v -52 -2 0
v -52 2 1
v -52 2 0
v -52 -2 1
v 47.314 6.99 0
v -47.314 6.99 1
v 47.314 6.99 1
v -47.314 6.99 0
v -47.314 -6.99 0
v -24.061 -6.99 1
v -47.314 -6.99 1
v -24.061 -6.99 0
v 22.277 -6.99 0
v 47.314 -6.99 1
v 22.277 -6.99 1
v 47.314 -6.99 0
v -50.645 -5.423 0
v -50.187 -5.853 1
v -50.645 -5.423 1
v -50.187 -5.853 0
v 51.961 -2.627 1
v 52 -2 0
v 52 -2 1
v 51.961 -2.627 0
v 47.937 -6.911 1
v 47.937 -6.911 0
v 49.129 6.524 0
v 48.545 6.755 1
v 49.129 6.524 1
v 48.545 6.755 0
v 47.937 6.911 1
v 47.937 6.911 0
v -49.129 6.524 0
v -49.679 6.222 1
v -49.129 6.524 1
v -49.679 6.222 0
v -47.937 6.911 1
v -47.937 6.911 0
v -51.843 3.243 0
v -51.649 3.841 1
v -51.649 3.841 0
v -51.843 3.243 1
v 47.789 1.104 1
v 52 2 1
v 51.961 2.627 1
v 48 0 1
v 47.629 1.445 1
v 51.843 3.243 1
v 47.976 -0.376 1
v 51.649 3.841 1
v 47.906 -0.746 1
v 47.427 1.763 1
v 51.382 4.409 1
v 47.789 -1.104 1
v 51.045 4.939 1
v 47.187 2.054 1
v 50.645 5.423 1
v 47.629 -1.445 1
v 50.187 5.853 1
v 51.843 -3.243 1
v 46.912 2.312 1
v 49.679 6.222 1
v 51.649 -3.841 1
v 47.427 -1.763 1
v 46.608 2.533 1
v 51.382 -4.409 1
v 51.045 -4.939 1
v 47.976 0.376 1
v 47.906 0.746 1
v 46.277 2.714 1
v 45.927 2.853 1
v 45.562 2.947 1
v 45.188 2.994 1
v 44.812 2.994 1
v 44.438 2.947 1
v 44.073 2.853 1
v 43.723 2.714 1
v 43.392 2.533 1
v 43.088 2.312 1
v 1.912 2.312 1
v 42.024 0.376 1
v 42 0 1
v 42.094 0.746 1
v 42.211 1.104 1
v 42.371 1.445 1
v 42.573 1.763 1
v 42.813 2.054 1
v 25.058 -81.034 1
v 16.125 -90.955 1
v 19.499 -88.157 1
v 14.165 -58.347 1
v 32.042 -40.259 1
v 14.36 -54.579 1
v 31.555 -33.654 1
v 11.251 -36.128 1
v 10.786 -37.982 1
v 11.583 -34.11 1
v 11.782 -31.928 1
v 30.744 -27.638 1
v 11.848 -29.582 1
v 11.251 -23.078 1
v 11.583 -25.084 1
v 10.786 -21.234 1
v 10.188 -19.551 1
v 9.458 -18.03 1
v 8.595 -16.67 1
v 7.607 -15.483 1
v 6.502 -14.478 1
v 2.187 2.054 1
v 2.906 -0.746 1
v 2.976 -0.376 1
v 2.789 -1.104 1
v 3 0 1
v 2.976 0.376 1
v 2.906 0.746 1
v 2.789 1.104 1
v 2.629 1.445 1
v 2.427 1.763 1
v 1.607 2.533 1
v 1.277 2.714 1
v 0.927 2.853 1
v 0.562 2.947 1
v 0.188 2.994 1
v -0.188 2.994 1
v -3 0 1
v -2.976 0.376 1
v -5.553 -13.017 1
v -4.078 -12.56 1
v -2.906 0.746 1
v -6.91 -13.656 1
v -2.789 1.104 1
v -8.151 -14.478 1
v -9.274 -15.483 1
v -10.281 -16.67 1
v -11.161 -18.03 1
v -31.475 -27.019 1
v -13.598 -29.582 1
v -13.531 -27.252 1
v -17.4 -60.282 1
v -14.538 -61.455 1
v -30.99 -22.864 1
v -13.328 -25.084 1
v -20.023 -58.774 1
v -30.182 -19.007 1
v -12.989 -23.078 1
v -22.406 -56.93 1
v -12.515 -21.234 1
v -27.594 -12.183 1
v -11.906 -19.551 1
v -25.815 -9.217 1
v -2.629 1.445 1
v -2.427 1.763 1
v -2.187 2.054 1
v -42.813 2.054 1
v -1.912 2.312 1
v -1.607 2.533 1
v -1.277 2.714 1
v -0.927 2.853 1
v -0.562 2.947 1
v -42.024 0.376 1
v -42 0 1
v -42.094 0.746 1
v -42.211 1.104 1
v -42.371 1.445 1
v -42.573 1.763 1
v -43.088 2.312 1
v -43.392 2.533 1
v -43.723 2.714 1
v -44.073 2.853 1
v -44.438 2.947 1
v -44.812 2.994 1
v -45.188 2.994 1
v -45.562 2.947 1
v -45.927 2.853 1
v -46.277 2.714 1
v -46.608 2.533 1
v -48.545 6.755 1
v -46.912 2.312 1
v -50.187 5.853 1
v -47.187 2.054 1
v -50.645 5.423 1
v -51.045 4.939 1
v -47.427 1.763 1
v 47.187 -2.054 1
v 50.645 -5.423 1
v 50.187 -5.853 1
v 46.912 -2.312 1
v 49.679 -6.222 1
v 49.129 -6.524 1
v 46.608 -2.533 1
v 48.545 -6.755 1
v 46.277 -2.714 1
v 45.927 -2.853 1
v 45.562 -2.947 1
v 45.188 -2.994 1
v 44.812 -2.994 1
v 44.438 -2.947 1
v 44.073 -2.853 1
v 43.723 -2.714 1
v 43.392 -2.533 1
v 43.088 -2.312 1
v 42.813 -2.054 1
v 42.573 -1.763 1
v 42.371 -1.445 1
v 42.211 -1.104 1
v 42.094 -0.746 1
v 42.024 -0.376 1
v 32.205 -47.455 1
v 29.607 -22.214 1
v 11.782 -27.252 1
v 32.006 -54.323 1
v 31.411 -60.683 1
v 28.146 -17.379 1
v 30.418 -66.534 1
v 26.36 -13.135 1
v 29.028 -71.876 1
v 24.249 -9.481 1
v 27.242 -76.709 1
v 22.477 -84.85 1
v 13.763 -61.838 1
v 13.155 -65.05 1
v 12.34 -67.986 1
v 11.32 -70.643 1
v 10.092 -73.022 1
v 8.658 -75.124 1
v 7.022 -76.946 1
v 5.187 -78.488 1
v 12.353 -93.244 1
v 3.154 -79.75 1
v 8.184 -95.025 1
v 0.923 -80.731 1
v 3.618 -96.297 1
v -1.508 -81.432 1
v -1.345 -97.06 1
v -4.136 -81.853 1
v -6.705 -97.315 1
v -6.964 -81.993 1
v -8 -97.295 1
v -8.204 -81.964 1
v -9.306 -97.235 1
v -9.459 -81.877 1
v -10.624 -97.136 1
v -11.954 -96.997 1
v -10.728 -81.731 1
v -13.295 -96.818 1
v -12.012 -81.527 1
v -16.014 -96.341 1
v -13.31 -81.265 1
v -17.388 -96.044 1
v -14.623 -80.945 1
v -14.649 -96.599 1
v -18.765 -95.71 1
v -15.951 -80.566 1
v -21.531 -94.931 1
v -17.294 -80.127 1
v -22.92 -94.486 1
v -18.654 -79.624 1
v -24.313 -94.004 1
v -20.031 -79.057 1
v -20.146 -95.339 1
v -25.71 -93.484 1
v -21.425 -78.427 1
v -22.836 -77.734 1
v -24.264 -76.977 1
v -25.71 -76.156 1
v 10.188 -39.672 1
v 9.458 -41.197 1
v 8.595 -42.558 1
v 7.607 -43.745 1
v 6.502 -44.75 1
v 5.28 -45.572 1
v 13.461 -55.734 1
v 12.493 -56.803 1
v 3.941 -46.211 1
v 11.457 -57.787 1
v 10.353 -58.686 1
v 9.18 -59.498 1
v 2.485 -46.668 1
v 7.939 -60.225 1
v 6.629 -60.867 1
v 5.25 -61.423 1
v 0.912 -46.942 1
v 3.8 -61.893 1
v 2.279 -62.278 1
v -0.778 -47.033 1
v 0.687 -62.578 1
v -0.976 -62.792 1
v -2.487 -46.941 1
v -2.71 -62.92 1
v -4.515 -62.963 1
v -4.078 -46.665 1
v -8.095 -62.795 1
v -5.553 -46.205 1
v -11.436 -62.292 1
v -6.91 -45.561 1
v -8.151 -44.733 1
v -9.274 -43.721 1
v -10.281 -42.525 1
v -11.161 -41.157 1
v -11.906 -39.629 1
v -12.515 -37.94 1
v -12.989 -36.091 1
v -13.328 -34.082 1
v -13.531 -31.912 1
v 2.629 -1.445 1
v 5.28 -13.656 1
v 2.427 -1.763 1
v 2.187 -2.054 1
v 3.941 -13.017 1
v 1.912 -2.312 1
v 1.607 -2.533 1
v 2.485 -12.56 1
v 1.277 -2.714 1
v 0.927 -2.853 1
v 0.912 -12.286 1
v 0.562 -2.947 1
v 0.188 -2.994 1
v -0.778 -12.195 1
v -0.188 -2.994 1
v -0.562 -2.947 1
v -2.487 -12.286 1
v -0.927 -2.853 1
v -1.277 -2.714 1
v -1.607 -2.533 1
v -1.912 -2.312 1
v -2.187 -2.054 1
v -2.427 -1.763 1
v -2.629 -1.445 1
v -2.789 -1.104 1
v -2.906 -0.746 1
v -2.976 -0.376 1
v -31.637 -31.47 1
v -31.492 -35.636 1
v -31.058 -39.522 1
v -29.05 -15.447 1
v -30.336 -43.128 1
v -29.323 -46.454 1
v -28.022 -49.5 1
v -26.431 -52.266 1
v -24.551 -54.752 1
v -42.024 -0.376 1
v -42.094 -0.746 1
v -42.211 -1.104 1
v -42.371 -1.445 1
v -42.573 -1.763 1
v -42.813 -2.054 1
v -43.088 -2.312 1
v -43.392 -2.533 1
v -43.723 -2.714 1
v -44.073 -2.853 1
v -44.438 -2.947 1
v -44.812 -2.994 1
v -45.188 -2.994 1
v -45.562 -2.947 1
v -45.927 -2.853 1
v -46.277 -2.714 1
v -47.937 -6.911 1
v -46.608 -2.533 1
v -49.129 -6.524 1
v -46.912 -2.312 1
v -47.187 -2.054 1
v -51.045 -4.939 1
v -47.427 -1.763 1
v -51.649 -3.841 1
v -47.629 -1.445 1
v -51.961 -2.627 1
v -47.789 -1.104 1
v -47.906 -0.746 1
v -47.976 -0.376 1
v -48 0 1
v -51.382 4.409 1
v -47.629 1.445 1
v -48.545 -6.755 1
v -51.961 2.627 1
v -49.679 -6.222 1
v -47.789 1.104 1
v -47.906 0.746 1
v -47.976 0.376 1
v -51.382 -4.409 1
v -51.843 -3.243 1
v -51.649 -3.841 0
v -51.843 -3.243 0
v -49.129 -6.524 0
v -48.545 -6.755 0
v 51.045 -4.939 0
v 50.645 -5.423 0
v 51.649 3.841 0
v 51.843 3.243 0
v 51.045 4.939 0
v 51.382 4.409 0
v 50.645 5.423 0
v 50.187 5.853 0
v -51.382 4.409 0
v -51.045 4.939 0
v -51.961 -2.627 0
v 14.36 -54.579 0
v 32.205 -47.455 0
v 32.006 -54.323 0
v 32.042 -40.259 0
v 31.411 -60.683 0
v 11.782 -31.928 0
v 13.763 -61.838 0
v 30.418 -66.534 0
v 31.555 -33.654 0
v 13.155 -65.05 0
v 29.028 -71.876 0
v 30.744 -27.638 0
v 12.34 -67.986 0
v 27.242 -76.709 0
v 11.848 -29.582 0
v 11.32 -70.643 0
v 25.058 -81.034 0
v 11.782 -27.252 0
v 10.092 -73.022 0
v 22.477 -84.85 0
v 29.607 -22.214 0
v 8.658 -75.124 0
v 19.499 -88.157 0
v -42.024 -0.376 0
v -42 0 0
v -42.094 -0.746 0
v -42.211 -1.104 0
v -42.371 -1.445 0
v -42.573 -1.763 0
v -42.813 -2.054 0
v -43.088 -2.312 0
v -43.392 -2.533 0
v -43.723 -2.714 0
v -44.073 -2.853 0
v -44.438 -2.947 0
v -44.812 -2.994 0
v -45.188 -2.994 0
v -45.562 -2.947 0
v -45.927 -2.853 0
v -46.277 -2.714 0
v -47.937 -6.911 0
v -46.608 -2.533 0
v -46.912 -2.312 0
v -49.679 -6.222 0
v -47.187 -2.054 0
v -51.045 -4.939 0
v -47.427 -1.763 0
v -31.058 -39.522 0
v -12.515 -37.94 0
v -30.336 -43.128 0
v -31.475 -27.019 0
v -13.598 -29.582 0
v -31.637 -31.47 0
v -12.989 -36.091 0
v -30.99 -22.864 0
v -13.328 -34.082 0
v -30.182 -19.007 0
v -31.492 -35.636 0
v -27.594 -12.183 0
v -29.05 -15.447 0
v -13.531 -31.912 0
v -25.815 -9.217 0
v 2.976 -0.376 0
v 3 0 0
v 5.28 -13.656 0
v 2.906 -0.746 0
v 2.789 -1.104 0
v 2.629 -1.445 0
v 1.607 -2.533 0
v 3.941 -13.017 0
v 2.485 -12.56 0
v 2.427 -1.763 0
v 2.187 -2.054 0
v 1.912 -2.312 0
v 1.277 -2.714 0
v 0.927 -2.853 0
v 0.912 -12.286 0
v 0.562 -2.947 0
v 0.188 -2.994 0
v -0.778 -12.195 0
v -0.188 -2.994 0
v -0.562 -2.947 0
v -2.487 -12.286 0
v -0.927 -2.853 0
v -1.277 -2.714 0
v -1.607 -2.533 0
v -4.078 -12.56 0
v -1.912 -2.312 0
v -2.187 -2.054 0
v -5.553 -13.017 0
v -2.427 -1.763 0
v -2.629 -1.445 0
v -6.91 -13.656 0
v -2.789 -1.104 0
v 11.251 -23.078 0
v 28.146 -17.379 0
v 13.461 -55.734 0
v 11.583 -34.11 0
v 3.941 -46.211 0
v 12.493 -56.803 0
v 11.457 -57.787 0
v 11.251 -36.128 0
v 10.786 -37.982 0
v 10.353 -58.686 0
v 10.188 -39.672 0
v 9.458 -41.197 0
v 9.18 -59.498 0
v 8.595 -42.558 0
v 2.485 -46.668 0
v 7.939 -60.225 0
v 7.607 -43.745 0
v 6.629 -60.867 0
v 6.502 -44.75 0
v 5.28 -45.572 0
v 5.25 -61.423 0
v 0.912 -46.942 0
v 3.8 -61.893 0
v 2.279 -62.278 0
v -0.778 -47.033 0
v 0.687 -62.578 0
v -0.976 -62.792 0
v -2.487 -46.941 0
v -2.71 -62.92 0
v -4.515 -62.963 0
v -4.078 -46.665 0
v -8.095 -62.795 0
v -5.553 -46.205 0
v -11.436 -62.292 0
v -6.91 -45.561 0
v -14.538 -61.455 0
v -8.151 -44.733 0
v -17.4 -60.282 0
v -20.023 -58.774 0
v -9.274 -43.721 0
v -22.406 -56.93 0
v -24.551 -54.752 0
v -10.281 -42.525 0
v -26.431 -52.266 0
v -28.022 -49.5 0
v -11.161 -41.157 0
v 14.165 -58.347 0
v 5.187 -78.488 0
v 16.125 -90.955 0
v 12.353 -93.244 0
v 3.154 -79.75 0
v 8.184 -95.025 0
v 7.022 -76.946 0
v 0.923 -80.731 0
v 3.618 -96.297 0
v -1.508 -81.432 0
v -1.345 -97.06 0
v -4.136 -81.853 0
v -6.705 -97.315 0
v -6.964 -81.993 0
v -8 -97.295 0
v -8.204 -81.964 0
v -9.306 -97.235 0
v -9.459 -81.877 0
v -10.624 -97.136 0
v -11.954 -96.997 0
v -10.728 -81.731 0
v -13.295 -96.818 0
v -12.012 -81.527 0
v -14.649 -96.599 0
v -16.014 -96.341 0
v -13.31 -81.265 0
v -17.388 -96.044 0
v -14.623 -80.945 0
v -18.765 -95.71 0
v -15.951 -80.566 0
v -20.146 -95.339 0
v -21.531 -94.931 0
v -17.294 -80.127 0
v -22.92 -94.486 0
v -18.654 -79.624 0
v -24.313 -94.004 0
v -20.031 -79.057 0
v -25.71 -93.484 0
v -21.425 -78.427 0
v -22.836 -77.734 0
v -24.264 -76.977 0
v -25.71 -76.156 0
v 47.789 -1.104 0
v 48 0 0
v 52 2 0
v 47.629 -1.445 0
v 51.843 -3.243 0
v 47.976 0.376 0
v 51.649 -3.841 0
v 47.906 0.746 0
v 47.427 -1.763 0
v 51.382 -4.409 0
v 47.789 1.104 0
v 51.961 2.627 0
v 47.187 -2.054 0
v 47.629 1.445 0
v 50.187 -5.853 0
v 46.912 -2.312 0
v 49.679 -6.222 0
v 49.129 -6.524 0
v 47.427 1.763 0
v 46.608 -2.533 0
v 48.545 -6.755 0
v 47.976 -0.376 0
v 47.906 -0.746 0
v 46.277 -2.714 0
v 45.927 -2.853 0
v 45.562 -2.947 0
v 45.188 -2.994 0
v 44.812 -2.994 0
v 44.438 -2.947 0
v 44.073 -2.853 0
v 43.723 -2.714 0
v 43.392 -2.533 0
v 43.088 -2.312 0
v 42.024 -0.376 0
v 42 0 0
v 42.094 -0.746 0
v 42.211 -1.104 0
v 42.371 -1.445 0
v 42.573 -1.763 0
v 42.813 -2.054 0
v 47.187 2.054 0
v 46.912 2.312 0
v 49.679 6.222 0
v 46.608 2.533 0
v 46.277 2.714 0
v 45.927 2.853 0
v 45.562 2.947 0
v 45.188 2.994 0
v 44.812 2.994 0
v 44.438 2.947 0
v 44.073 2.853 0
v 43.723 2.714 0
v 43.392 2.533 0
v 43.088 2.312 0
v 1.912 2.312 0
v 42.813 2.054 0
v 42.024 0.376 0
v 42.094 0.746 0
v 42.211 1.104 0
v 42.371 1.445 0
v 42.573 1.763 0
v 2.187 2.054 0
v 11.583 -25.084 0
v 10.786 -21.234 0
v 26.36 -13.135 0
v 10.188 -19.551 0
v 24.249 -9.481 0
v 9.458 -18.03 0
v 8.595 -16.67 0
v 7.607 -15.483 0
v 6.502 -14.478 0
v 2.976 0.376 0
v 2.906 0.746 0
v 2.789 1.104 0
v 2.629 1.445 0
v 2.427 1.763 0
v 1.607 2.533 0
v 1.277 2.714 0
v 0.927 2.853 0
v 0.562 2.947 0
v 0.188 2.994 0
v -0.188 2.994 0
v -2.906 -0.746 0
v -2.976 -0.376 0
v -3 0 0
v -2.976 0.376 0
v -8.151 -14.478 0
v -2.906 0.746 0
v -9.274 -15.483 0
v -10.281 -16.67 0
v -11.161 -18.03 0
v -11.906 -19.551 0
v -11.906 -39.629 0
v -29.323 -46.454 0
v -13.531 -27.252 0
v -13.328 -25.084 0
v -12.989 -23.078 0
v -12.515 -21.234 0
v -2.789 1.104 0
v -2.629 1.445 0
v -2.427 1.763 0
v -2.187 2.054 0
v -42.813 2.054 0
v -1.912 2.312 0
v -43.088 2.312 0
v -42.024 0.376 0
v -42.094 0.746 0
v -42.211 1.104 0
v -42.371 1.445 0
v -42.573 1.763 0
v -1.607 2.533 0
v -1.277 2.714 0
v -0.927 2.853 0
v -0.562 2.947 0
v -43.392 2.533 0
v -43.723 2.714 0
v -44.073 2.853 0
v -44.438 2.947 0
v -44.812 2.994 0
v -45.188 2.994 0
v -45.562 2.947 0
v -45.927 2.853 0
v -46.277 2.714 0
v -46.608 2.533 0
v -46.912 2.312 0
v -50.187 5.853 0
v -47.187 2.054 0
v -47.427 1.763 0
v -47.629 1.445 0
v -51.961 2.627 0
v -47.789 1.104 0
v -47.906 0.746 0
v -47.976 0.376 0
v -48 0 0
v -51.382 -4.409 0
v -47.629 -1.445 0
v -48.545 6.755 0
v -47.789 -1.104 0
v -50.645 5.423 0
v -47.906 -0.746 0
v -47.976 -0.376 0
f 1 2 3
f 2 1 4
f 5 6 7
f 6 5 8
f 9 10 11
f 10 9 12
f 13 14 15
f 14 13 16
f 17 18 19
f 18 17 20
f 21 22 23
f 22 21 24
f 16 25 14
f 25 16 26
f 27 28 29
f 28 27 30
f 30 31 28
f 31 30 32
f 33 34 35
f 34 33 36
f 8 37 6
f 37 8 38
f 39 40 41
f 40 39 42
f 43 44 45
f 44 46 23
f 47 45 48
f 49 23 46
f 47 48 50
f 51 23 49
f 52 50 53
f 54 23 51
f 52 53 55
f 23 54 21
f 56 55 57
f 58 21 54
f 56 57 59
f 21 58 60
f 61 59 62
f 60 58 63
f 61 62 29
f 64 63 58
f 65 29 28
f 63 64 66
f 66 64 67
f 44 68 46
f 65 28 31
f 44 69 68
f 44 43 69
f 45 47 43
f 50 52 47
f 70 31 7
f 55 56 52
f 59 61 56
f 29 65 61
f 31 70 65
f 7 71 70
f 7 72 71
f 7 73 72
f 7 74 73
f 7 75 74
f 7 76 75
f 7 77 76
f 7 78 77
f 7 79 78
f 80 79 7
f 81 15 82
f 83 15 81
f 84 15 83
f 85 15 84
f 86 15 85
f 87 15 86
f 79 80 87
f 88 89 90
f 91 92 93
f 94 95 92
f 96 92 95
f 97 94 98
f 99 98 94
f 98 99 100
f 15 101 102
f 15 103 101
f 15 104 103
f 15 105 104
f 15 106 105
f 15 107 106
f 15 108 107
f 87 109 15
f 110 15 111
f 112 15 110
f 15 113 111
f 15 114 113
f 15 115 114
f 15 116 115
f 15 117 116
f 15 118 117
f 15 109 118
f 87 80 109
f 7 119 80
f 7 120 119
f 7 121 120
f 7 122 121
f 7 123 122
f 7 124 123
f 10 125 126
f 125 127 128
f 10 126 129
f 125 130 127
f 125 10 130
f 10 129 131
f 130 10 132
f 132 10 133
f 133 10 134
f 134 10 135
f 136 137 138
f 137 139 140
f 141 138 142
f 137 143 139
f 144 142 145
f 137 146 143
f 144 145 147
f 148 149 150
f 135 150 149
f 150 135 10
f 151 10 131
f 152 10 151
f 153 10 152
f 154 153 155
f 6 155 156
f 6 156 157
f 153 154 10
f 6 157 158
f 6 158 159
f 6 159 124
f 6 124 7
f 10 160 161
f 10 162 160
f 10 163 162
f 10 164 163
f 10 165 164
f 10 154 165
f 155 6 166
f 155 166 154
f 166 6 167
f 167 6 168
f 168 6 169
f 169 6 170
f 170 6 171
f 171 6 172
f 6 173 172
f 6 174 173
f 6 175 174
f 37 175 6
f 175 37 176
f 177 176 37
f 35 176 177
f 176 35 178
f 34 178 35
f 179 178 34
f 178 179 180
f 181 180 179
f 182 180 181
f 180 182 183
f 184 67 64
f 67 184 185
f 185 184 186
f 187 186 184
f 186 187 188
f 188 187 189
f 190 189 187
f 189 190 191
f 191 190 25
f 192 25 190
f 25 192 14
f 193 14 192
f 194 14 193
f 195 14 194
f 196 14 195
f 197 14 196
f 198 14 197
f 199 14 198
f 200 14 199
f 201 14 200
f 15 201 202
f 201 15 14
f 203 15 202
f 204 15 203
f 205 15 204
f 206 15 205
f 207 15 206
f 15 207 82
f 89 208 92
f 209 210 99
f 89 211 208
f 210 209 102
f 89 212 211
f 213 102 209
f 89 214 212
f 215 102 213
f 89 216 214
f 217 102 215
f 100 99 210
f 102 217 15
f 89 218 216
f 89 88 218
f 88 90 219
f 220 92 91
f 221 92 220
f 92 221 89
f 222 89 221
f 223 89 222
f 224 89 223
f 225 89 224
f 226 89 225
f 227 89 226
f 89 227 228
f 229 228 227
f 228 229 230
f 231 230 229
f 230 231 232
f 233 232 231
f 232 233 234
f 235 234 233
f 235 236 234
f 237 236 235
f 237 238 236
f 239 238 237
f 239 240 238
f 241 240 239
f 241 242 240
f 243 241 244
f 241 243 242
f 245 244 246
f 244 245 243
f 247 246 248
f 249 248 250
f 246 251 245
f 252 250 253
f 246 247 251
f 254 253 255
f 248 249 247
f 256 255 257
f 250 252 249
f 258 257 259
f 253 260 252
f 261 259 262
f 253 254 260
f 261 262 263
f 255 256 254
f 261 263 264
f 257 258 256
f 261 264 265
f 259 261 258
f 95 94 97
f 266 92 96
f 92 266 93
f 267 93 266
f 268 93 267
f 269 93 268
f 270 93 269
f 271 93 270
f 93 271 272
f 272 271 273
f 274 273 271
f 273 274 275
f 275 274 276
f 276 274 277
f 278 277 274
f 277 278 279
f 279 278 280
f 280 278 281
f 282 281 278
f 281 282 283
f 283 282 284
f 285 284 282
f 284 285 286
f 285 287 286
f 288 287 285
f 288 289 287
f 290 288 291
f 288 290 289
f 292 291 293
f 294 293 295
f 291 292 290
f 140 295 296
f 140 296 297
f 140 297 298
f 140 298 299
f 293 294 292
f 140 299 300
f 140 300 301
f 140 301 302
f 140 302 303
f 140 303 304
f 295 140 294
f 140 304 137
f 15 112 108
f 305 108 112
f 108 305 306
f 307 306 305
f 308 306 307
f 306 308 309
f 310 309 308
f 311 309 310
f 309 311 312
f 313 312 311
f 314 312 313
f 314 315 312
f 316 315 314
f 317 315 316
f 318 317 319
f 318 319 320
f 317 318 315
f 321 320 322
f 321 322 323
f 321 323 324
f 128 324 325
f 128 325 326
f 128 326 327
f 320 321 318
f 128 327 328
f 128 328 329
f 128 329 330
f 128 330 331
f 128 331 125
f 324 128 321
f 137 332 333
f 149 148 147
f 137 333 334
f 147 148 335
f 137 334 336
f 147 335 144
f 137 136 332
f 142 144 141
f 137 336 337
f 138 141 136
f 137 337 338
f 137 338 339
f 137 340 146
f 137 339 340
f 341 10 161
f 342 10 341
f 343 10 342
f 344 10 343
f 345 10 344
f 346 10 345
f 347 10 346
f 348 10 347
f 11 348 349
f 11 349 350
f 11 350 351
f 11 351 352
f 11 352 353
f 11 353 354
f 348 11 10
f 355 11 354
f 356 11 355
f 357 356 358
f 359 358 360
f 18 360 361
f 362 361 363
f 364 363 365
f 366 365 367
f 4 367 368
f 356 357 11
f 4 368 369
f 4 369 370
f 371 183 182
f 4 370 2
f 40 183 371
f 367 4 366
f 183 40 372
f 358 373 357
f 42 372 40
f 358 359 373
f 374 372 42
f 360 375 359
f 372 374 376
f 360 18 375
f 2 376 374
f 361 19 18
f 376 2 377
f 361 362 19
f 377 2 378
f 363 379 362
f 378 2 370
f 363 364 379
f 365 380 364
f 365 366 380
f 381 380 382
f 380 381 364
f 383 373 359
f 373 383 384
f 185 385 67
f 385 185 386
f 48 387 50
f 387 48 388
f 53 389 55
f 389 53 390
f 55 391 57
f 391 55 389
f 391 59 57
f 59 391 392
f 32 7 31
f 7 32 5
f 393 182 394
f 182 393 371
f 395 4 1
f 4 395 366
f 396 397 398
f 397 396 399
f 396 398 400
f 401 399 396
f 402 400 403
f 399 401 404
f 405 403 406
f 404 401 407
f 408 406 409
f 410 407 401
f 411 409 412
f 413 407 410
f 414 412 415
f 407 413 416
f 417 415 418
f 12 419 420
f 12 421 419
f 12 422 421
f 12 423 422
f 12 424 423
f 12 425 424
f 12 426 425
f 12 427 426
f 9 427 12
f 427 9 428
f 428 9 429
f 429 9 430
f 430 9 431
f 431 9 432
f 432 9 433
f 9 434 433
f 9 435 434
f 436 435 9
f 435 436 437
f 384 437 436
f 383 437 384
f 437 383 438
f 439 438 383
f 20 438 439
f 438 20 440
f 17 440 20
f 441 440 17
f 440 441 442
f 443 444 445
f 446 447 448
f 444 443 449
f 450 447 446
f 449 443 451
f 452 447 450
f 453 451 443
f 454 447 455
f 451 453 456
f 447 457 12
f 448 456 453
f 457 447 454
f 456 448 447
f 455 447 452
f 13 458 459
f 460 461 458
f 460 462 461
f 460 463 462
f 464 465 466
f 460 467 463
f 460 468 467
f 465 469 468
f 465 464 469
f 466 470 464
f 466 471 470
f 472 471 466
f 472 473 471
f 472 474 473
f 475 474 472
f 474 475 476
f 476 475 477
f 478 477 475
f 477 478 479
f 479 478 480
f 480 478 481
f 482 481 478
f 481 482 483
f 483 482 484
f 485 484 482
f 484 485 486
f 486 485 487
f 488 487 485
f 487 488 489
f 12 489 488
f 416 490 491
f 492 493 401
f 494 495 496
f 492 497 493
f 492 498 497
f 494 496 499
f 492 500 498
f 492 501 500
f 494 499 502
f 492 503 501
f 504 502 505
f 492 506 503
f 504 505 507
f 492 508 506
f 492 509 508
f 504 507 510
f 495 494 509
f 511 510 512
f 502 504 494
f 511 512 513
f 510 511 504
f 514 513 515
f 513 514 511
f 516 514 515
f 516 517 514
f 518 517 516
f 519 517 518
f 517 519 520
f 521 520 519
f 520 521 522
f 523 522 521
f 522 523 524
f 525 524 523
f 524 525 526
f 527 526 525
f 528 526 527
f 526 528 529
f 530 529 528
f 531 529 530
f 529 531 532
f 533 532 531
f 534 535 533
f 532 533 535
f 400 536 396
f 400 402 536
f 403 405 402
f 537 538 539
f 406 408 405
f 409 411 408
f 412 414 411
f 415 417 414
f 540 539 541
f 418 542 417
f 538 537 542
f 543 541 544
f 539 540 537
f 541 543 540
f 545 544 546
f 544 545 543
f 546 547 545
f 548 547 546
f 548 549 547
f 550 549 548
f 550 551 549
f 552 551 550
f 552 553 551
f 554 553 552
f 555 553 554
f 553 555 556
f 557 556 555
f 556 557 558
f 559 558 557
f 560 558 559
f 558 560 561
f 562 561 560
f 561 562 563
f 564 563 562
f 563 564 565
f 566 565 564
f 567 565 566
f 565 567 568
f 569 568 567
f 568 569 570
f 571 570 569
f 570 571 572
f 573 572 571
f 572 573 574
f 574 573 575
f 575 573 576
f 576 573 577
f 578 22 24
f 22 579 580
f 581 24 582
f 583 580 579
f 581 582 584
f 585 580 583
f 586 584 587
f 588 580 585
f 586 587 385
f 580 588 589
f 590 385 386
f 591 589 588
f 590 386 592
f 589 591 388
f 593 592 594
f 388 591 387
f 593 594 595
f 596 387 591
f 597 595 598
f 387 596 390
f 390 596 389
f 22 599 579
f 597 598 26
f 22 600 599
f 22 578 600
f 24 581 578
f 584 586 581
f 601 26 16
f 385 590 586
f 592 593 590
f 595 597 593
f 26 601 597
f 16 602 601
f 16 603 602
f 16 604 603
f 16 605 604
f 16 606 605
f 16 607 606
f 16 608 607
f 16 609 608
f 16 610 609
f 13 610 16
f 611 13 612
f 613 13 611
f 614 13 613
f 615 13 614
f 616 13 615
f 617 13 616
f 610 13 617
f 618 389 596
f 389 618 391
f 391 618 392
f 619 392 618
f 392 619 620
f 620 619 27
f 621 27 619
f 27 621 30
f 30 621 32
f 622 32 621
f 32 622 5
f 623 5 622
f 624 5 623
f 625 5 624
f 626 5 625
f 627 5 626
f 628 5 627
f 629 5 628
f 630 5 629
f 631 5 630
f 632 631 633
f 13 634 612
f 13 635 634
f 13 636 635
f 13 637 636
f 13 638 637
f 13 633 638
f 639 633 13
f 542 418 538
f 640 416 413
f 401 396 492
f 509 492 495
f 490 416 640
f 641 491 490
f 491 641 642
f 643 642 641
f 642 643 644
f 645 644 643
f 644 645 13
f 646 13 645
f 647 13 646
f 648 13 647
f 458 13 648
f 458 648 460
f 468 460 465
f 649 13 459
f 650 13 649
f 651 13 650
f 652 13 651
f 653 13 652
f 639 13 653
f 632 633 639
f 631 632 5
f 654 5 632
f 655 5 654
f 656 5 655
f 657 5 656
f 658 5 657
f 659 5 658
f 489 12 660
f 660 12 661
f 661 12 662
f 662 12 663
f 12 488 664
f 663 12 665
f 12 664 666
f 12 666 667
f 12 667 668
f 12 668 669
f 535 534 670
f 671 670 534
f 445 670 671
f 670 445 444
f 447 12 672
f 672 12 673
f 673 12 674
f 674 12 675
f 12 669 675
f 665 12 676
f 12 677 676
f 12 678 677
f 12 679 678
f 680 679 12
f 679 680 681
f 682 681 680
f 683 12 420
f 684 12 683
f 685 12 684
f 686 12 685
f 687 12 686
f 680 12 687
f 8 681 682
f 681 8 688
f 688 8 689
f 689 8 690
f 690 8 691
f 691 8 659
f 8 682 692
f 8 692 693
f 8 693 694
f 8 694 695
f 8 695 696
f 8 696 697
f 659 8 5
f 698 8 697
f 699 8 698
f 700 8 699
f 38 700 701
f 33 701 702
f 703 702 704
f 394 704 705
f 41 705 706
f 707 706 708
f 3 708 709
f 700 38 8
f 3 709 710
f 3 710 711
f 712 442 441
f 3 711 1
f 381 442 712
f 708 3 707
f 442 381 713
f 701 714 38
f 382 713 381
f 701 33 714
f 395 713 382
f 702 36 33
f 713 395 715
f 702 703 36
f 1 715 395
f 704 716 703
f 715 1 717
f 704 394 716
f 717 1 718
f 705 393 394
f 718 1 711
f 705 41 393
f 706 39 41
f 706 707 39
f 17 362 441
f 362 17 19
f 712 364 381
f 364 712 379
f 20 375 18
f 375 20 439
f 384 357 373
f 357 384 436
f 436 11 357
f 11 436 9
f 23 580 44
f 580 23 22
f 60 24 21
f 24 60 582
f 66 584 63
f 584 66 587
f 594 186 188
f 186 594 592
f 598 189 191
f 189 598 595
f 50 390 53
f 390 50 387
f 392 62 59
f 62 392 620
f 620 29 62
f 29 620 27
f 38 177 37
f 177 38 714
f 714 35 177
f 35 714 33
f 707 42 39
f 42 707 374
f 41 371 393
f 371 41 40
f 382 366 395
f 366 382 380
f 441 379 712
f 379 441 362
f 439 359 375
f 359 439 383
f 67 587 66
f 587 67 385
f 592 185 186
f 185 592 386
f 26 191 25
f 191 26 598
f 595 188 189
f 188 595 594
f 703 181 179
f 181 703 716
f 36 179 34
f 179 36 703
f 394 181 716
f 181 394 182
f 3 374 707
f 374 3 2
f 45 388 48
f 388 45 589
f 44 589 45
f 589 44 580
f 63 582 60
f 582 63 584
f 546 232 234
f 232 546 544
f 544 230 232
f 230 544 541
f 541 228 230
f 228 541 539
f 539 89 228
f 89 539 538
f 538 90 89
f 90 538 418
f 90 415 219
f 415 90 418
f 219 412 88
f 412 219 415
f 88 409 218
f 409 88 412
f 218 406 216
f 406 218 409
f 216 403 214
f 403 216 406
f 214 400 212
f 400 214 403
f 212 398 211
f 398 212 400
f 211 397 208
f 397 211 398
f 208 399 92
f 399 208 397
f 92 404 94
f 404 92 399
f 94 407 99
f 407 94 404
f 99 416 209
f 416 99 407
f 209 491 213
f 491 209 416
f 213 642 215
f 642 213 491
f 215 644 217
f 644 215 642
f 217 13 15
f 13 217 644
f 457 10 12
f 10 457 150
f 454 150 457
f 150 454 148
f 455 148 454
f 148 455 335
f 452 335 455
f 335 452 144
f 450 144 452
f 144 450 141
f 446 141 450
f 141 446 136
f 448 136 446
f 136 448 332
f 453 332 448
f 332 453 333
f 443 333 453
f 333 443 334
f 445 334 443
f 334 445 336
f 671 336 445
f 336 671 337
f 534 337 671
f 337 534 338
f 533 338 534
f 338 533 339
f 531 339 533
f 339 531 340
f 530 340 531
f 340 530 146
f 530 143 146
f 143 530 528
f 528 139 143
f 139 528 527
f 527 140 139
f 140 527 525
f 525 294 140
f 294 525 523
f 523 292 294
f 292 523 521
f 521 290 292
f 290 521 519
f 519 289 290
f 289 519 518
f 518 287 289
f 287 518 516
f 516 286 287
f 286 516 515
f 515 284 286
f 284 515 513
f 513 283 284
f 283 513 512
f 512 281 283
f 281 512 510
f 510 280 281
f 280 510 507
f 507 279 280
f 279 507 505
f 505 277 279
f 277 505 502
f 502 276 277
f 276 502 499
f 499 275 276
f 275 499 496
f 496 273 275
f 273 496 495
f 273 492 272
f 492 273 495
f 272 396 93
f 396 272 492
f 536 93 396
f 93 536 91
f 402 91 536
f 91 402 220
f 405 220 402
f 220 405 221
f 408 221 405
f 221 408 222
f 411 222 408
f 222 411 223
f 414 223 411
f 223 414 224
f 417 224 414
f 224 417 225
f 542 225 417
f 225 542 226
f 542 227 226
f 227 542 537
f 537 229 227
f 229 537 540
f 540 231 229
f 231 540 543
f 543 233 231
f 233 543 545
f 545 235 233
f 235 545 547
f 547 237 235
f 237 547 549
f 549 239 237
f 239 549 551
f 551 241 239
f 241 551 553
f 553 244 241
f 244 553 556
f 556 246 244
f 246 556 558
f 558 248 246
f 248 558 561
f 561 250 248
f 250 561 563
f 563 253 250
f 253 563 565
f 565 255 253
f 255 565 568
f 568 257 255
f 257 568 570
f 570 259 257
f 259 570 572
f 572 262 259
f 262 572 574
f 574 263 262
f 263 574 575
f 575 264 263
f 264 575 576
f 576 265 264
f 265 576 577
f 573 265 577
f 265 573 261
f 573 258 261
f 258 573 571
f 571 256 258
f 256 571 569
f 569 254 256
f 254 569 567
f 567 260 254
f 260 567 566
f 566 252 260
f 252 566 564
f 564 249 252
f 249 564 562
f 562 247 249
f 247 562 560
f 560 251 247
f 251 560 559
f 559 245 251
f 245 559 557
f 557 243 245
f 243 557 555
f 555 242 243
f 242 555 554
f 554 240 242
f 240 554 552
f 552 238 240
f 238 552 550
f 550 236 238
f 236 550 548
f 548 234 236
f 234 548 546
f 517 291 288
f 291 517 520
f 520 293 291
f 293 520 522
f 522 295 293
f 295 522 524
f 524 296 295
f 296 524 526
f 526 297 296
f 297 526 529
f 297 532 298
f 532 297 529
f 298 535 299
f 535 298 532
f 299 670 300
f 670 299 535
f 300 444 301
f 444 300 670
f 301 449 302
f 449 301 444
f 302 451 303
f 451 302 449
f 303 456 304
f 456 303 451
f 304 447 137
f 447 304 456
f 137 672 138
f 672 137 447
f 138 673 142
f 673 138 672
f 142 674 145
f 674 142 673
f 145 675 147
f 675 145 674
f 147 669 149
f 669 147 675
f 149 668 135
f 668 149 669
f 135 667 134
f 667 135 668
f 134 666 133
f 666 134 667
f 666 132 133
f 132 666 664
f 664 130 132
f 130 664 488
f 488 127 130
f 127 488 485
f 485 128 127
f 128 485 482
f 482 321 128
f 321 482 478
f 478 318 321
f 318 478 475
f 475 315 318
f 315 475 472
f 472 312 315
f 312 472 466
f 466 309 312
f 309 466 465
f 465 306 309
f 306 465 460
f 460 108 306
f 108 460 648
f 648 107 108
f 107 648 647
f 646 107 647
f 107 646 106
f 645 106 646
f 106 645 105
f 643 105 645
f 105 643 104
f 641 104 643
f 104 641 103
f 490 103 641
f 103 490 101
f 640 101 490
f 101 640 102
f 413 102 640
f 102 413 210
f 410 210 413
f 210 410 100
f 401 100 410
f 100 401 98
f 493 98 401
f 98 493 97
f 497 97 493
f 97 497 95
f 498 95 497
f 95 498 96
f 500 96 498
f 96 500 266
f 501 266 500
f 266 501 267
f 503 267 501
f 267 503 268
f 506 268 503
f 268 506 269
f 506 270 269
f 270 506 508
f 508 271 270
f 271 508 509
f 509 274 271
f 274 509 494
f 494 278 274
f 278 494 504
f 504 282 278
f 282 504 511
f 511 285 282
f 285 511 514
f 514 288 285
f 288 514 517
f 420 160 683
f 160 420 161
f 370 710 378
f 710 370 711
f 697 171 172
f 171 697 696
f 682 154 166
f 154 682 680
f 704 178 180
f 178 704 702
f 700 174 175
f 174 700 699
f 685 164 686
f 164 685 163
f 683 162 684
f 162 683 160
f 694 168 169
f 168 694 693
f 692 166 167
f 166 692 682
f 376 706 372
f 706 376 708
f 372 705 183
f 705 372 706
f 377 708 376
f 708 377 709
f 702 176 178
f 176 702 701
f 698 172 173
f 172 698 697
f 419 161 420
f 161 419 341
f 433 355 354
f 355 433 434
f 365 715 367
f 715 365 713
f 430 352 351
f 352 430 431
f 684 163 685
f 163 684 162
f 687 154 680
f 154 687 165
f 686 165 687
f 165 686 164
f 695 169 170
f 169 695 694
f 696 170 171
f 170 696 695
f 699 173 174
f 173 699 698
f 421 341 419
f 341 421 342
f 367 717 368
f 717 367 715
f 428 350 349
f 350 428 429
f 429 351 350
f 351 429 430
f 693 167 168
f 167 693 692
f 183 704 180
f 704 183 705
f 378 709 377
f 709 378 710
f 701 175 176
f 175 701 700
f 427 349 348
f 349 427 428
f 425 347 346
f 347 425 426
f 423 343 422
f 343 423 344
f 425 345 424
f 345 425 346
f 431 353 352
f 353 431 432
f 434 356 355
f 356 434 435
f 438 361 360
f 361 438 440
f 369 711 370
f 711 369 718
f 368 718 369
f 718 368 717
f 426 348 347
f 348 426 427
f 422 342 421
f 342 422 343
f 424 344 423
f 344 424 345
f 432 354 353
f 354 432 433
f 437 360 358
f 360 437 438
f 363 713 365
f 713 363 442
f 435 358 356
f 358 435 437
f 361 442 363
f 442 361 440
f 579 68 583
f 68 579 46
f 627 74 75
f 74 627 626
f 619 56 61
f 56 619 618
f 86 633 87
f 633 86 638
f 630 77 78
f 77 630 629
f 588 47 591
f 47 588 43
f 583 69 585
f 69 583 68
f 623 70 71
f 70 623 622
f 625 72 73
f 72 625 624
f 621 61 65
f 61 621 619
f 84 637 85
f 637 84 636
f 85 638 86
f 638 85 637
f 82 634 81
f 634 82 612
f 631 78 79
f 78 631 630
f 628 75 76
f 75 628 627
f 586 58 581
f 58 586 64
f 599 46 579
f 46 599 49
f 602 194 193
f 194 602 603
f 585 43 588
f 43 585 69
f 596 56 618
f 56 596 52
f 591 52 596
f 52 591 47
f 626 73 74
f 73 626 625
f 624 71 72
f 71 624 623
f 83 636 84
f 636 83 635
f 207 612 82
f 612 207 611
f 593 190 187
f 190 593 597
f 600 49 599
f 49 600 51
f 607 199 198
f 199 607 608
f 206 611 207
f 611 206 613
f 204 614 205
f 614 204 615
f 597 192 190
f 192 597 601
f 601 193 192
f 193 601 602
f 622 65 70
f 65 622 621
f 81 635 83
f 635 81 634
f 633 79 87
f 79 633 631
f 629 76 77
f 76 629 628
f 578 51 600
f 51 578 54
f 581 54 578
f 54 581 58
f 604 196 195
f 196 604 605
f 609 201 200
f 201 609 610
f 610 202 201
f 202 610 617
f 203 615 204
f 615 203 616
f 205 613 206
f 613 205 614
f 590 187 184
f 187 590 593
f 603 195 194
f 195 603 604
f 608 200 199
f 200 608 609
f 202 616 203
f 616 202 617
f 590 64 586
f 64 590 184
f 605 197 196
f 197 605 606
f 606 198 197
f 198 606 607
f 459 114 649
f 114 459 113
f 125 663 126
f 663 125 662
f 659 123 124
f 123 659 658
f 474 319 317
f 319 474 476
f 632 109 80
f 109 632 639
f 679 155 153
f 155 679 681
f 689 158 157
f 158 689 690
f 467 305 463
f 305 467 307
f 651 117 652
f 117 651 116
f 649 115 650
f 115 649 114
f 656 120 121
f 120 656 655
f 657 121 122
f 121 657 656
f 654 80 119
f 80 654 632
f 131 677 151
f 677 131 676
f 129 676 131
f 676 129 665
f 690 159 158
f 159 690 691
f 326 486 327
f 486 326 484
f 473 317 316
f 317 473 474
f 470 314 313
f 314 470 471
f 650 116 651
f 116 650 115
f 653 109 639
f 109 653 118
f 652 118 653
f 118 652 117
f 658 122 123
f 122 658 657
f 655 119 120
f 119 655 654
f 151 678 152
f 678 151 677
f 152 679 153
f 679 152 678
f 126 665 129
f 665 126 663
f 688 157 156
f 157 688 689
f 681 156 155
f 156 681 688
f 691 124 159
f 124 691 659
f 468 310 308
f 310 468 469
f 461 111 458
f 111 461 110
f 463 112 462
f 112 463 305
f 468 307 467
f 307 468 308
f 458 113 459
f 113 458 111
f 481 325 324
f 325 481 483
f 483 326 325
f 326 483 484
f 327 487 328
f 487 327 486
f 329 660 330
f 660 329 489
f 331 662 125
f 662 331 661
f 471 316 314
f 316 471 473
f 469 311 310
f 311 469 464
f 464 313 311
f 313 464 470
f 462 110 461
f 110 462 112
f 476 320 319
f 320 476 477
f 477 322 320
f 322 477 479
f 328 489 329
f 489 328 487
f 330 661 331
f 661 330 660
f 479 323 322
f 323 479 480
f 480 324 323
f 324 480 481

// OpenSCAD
$fn = 50;


difference() {
	union() {
		translate(v = [0, 0, 0]) {
			rotate(a = [0, 0, 0]) {
				hull() {
					translate(v = [-47.0000000000, 2.0000000000, 0]) {
						rotate(a = [0, 0, 0]) {
							translate(v = [0, 0, 0]) {
								rotate(a = [0, 0, 0]) {
									cylinder(h = 1, r = 5);
								}
							}
						}
					}
					translate(v = [47.0000000000, 2.0000000000, 0]) {
						rotate(a = [0, 0, 0]) {
							translate(v = [0, 0, 0]) {
								rotate(a = [0, 0, 0]) {
									cylinder(h = 1, r = 5);
								}
							}
						}
					}
					translate(v = [-47.0000000000, -2.0000000000, 0]) {
						rotate(a = [0, 0, 0]) {
							translate(v = [0, 0, 0]) {
								rotate(a = [0, 0, 0]) {
									cylinder(h = 1, r = 5);
								}
							}
						}
					}
					translate(v = [47.0000000000, -2.0000000000, 0]) {
						rotate(a = [0, 0, 0]) {
							translate(v = [0, 0, 0]) {
								rotate(a = [0, 0, 0]) {
									cylinder(h = 1, r = 5);
								}
							}
						}
					}
				}
			}
		}
		translate(v = [0, 0, 0]) {
			rotate(a = [0, 0, 0]) {
				linear_extrude(height = 1) {
					text(font = "DejaVu Sans Mono:style=Bold", halign = "center", size = 95.0000000000, text = "9", valign = "top");
				}
			}
		}
	}
	union() {
		translate(v = [-45.0000000000, 0.0000000000, -125.0000000000]) {
			rotate(a = [0, 0, 0]) {
				cylinder(h = 250, r = 3.0000000000);
			}
		}
		translate(v = [45.0000000000, 0.0000000000, -125.0000000000]) {
			rotate(a = [0, 0, 0]) {
				cylinder(h = 250, r = 3.0000000000);
			}
		}
		translate(v = [45.0000000000, 0.0000000000, -125.0000000000]) {
			rotate(a = [0, 0, 0]) {
				cylinder(h = 250, r = 3.0000000000);
			}
		}
		translate(v = [0, 0, -125.0000000000]) {
			rotate(a = [0, 0, 0]) {
				cylinder(h = 250, r = 3.0000000000);
			}
		}
	}
}
